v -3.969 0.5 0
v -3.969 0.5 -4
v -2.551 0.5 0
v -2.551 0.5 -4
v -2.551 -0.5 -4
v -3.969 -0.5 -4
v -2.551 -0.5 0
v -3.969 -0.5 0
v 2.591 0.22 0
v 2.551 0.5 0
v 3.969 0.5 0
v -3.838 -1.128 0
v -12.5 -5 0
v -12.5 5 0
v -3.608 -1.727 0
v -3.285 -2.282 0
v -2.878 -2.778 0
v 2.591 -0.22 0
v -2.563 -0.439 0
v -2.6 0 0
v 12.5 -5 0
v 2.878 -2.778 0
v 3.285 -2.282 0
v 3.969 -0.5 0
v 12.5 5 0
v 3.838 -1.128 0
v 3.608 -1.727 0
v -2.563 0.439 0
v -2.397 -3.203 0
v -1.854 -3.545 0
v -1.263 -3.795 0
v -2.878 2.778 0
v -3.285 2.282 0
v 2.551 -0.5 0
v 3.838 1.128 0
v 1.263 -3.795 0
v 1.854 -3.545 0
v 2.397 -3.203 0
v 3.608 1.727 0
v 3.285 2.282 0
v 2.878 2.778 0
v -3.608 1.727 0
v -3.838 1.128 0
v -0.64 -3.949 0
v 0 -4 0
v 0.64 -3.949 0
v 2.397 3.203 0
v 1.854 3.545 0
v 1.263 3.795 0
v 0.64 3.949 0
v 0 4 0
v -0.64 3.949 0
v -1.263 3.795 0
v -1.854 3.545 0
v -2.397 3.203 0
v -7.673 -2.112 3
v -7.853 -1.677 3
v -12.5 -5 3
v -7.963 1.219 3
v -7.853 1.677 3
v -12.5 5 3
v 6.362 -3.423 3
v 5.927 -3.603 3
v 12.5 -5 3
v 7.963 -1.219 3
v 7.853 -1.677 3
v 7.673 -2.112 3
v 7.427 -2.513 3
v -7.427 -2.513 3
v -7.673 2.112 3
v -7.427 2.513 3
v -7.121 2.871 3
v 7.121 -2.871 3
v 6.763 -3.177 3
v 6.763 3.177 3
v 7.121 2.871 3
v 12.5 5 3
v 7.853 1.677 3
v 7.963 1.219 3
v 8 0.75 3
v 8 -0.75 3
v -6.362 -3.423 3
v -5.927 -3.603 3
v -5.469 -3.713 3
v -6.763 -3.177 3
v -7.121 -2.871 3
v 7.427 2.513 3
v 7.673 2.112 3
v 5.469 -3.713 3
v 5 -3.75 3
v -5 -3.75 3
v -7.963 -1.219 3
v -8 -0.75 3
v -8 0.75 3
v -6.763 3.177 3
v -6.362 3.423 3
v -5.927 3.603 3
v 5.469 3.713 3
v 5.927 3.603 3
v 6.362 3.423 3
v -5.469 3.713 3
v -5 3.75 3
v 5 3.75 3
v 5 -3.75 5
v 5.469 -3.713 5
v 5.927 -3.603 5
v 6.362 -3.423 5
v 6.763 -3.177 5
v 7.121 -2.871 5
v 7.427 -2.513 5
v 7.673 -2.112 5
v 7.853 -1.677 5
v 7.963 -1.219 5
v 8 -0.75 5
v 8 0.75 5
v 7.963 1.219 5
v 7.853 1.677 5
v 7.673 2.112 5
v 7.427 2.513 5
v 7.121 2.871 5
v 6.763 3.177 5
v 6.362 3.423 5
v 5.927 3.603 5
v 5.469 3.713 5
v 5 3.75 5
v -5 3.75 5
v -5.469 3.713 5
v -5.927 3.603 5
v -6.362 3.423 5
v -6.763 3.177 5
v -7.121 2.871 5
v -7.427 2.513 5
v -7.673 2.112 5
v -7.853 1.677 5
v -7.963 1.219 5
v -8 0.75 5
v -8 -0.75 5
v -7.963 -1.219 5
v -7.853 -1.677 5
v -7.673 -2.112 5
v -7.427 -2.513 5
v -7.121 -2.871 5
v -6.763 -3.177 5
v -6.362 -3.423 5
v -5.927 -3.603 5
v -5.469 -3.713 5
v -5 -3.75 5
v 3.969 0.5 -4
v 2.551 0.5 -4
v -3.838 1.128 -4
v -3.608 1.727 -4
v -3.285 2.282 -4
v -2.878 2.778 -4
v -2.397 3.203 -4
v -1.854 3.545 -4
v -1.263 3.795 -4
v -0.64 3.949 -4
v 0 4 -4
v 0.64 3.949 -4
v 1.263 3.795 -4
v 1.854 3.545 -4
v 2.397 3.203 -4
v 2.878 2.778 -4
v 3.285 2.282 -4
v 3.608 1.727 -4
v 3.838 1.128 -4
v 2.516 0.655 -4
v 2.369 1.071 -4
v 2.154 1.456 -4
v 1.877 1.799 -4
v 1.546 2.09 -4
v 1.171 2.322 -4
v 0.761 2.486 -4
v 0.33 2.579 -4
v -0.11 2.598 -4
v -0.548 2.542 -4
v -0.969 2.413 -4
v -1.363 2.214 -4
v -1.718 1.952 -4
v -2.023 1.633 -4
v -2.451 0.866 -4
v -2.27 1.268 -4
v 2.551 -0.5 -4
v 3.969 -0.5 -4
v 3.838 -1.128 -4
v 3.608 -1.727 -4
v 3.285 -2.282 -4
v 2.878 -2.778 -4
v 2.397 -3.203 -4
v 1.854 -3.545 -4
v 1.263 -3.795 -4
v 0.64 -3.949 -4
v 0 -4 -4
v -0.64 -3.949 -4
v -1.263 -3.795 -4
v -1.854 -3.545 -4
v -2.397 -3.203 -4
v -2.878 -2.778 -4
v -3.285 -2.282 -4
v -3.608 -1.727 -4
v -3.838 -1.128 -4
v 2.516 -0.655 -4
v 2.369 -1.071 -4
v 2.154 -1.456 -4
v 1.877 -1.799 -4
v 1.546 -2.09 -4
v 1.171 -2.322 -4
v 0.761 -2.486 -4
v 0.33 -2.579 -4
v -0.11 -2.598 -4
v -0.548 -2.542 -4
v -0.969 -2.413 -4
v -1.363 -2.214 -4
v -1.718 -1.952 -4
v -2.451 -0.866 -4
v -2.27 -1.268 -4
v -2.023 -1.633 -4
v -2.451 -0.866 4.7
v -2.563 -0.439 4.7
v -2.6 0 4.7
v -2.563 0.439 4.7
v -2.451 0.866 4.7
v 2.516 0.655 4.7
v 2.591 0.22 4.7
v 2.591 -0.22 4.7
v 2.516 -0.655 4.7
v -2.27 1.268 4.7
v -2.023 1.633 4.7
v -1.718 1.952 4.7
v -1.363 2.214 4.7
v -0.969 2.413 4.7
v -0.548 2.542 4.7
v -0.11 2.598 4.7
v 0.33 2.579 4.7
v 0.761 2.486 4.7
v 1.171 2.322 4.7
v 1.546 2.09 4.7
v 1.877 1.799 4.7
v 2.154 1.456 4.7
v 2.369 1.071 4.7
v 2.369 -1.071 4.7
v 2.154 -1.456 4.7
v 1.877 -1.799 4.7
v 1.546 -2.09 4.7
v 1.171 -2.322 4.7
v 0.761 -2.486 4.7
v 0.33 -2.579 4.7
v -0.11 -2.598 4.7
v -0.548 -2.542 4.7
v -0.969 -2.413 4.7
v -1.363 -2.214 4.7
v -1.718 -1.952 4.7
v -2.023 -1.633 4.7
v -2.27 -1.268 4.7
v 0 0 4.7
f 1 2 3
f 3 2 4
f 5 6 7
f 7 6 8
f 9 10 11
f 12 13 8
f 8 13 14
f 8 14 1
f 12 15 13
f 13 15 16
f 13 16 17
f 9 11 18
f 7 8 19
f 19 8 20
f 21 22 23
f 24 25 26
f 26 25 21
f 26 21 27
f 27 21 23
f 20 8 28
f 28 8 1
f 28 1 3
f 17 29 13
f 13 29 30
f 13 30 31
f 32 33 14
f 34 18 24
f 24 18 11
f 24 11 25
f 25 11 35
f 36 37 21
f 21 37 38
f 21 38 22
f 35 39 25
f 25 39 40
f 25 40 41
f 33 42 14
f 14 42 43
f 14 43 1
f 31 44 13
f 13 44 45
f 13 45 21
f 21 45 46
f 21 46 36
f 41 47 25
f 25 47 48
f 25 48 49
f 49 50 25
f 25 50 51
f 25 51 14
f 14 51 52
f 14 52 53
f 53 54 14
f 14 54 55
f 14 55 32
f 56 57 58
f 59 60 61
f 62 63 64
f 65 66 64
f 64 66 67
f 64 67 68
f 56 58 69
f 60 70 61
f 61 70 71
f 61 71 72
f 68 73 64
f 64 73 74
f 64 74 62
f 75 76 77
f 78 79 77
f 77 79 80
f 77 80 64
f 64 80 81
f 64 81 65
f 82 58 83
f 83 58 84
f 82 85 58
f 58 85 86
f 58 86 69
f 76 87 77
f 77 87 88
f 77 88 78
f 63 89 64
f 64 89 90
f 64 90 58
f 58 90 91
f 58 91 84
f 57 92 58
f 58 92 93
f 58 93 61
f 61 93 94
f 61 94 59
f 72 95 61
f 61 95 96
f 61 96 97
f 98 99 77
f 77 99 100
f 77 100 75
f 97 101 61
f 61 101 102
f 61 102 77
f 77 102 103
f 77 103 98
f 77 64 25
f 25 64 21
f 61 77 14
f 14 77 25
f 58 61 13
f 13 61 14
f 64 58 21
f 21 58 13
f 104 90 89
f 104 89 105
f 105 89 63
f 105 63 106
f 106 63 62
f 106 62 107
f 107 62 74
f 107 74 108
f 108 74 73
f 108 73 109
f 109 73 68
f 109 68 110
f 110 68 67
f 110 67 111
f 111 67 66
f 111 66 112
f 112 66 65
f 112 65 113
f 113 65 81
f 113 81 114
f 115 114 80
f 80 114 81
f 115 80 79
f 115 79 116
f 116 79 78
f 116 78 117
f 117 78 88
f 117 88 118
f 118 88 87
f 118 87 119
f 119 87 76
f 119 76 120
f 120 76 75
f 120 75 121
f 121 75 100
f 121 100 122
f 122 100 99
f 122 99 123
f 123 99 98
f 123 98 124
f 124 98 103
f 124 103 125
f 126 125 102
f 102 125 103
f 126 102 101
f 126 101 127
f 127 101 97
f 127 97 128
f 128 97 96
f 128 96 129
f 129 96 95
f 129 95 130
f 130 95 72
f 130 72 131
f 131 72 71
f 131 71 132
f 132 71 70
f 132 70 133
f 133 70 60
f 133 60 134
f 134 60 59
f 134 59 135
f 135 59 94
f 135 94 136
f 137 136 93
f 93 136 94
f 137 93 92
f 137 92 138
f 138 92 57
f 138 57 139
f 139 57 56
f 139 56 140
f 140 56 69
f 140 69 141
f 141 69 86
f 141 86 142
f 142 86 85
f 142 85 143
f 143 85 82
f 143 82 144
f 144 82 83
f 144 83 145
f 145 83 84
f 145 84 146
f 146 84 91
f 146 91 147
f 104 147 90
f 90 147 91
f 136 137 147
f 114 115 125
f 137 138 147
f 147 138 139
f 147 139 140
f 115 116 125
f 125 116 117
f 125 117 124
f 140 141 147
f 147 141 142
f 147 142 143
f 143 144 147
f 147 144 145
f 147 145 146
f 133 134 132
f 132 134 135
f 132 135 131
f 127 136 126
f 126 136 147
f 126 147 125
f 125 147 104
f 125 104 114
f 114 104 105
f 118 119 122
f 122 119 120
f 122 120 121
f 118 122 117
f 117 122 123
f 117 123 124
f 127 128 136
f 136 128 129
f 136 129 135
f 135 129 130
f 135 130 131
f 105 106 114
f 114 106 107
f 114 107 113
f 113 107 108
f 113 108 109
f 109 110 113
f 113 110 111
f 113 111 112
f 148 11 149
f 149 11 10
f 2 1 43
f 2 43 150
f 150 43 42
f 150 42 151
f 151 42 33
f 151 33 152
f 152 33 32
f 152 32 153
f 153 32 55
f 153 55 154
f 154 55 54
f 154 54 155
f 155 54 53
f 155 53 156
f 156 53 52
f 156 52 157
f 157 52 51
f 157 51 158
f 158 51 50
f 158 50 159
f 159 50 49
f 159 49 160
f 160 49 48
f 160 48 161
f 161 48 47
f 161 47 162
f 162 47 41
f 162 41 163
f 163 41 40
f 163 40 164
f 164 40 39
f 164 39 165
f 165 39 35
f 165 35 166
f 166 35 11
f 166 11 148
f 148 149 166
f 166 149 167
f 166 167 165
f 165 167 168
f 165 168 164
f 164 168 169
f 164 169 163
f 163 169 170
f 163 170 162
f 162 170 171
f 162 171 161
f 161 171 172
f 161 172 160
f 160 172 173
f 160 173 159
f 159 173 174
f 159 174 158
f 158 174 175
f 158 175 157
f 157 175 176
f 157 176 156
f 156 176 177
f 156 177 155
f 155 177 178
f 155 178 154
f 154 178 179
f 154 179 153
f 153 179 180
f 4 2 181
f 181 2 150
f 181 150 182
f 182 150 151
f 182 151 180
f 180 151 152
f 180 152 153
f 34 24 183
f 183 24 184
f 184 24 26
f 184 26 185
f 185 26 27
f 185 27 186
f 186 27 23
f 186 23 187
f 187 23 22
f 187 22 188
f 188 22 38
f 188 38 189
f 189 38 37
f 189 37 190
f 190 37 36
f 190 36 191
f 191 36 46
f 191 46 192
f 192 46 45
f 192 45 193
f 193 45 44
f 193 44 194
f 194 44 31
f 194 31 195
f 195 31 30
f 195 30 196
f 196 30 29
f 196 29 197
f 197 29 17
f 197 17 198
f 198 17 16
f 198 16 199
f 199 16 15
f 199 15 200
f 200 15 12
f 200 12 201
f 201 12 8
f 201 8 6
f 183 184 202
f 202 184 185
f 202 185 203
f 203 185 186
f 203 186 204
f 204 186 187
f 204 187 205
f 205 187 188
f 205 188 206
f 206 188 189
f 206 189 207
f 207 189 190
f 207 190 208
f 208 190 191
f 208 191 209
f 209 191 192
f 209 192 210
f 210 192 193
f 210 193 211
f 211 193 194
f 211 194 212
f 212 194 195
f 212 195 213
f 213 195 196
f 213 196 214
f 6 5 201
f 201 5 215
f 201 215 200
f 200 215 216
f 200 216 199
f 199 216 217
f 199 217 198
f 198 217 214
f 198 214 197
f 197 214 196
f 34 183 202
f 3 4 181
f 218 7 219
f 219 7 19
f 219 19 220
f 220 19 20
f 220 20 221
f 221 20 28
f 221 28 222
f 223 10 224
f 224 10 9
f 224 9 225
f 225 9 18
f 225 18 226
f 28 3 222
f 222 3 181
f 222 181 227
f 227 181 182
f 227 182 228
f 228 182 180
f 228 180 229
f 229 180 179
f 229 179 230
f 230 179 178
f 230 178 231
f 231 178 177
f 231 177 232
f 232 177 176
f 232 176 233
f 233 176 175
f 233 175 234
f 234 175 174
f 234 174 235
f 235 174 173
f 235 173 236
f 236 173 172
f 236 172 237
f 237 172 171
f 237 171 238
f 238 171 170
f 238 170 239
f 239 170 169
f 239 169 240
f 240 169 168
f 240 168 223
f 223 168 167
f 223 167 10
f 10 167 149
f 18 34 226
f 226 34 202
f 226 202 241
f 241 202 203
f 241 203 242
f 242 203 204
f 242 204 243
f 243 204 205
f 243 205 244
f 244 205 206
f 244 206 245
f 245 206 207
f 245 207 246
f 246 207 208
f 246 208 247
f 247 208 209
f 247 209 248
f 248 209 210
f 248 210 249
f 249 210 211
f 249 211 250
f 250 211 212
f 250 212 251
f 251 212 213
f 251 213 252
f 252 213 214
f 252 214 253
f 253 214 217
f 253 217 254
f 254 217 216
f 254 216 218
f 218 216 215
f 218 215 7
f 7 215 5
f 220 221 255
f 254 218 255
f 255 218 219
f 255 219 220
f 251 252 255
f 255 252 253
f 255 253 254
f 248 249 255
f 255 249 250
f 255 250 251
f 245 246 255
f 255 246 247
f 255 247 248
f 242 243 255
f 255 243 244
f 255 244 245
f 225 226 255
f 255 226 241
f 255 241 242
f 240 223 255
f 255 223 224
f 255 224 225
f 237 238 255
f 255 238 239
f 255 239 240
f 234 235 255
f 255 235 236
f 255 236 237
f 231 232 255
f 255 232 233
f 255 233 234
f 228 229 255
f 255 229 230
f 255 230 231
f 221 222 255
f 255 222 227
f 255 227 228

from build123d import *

# Parameters (mm, degrees)
SKICA1_W                 = 25
SKICA1_H                 = 10
P_IDAT_VYSUNUT_M1_DEPTH  = 3
P_IDAT_VYSUNUT_M2_DEPTH  = 2
P_IDAT_VYSUNUT_M3_DEPTH  = 4
SKICA4_R                 = 2.6
ODEBRAT_VYSUNUT_M1_DEPTH = 8.7


with BuildPart() as part:
    # Skica1 → Přidat vysunutím1 (new body)
    with BuildSketch(Plane.XY):
        Rectangle(SKICA1_W, SKICA1_H)
    extrude(amount=P_IDAT_VYSUNUT_M1_DEPTH)

    # Skica2 → Přidat vysunutím2 (add)
    with BuildSketch(Plane.XY.offset(3)):
        with BuildLine():
            Line((-5, 3.75), (5, 3.75))
            ThreePointArc((5, 3.75), (7.121320344, 2.871320344), (8, 0.75))
            Line((8, 0.75), (8, -0.75))
            ThreePointArc((8, -0.75), (7.121320344, -2.871320344), (5, -3.75))
            Line((5, -3.75), (-5, -3.75))
            ThreePointArc((-5, -3.75), (-7.121320344, -2.871320344), (-8, -0.75))
            Line((-8, -0.75), (-8, 0.75))
            ThreePointArc((-8, 0.75), (-7.121320344, 2.871320344), (-5, 3.75))
        make_face()
    extrude(amount=P_IDAT_VYSUNUT_M2_DEPTH)

    # Skica3 → Přidat vysunutím3 (add)
    with BuildSketch(Plane(origin=(0, 0, 0), x_dir=(-1, 0, 0), z_dir=(0, 0, -1))):
        with BuildLine():
            ThreePointArc((3.968626967, 0.5), (0, 4), (-3.968626967, 0.5))
            Line((-3.968626967, 0.5), (3.968626967, 0.5))
        make_face()
        with BuildLine():
            ThreePointArc((-3.968626967, -0.5), (0, -4), (3.968626967, -0.5))
            Line((3.968626967, -0.5), (-3.968626967, -0.5))
        make_face()
    extrude(amount=P_IDAT_VYSUNUT_M3_DEPTH)

    # Skica4 → Odebrat vysunutím1 (cut)
    with BuildSketch(Plane(origin=(0, 0, -4), x_dir=(-1, 0, 0), z_dir=(0, 0, -1))):
        Circle(SKICA4_R)
    extrude(amount=-ODEBRAT_VYSUNUT_M1_DEPTH, mode=Mode.SUBTRACT)


solid = part.part
